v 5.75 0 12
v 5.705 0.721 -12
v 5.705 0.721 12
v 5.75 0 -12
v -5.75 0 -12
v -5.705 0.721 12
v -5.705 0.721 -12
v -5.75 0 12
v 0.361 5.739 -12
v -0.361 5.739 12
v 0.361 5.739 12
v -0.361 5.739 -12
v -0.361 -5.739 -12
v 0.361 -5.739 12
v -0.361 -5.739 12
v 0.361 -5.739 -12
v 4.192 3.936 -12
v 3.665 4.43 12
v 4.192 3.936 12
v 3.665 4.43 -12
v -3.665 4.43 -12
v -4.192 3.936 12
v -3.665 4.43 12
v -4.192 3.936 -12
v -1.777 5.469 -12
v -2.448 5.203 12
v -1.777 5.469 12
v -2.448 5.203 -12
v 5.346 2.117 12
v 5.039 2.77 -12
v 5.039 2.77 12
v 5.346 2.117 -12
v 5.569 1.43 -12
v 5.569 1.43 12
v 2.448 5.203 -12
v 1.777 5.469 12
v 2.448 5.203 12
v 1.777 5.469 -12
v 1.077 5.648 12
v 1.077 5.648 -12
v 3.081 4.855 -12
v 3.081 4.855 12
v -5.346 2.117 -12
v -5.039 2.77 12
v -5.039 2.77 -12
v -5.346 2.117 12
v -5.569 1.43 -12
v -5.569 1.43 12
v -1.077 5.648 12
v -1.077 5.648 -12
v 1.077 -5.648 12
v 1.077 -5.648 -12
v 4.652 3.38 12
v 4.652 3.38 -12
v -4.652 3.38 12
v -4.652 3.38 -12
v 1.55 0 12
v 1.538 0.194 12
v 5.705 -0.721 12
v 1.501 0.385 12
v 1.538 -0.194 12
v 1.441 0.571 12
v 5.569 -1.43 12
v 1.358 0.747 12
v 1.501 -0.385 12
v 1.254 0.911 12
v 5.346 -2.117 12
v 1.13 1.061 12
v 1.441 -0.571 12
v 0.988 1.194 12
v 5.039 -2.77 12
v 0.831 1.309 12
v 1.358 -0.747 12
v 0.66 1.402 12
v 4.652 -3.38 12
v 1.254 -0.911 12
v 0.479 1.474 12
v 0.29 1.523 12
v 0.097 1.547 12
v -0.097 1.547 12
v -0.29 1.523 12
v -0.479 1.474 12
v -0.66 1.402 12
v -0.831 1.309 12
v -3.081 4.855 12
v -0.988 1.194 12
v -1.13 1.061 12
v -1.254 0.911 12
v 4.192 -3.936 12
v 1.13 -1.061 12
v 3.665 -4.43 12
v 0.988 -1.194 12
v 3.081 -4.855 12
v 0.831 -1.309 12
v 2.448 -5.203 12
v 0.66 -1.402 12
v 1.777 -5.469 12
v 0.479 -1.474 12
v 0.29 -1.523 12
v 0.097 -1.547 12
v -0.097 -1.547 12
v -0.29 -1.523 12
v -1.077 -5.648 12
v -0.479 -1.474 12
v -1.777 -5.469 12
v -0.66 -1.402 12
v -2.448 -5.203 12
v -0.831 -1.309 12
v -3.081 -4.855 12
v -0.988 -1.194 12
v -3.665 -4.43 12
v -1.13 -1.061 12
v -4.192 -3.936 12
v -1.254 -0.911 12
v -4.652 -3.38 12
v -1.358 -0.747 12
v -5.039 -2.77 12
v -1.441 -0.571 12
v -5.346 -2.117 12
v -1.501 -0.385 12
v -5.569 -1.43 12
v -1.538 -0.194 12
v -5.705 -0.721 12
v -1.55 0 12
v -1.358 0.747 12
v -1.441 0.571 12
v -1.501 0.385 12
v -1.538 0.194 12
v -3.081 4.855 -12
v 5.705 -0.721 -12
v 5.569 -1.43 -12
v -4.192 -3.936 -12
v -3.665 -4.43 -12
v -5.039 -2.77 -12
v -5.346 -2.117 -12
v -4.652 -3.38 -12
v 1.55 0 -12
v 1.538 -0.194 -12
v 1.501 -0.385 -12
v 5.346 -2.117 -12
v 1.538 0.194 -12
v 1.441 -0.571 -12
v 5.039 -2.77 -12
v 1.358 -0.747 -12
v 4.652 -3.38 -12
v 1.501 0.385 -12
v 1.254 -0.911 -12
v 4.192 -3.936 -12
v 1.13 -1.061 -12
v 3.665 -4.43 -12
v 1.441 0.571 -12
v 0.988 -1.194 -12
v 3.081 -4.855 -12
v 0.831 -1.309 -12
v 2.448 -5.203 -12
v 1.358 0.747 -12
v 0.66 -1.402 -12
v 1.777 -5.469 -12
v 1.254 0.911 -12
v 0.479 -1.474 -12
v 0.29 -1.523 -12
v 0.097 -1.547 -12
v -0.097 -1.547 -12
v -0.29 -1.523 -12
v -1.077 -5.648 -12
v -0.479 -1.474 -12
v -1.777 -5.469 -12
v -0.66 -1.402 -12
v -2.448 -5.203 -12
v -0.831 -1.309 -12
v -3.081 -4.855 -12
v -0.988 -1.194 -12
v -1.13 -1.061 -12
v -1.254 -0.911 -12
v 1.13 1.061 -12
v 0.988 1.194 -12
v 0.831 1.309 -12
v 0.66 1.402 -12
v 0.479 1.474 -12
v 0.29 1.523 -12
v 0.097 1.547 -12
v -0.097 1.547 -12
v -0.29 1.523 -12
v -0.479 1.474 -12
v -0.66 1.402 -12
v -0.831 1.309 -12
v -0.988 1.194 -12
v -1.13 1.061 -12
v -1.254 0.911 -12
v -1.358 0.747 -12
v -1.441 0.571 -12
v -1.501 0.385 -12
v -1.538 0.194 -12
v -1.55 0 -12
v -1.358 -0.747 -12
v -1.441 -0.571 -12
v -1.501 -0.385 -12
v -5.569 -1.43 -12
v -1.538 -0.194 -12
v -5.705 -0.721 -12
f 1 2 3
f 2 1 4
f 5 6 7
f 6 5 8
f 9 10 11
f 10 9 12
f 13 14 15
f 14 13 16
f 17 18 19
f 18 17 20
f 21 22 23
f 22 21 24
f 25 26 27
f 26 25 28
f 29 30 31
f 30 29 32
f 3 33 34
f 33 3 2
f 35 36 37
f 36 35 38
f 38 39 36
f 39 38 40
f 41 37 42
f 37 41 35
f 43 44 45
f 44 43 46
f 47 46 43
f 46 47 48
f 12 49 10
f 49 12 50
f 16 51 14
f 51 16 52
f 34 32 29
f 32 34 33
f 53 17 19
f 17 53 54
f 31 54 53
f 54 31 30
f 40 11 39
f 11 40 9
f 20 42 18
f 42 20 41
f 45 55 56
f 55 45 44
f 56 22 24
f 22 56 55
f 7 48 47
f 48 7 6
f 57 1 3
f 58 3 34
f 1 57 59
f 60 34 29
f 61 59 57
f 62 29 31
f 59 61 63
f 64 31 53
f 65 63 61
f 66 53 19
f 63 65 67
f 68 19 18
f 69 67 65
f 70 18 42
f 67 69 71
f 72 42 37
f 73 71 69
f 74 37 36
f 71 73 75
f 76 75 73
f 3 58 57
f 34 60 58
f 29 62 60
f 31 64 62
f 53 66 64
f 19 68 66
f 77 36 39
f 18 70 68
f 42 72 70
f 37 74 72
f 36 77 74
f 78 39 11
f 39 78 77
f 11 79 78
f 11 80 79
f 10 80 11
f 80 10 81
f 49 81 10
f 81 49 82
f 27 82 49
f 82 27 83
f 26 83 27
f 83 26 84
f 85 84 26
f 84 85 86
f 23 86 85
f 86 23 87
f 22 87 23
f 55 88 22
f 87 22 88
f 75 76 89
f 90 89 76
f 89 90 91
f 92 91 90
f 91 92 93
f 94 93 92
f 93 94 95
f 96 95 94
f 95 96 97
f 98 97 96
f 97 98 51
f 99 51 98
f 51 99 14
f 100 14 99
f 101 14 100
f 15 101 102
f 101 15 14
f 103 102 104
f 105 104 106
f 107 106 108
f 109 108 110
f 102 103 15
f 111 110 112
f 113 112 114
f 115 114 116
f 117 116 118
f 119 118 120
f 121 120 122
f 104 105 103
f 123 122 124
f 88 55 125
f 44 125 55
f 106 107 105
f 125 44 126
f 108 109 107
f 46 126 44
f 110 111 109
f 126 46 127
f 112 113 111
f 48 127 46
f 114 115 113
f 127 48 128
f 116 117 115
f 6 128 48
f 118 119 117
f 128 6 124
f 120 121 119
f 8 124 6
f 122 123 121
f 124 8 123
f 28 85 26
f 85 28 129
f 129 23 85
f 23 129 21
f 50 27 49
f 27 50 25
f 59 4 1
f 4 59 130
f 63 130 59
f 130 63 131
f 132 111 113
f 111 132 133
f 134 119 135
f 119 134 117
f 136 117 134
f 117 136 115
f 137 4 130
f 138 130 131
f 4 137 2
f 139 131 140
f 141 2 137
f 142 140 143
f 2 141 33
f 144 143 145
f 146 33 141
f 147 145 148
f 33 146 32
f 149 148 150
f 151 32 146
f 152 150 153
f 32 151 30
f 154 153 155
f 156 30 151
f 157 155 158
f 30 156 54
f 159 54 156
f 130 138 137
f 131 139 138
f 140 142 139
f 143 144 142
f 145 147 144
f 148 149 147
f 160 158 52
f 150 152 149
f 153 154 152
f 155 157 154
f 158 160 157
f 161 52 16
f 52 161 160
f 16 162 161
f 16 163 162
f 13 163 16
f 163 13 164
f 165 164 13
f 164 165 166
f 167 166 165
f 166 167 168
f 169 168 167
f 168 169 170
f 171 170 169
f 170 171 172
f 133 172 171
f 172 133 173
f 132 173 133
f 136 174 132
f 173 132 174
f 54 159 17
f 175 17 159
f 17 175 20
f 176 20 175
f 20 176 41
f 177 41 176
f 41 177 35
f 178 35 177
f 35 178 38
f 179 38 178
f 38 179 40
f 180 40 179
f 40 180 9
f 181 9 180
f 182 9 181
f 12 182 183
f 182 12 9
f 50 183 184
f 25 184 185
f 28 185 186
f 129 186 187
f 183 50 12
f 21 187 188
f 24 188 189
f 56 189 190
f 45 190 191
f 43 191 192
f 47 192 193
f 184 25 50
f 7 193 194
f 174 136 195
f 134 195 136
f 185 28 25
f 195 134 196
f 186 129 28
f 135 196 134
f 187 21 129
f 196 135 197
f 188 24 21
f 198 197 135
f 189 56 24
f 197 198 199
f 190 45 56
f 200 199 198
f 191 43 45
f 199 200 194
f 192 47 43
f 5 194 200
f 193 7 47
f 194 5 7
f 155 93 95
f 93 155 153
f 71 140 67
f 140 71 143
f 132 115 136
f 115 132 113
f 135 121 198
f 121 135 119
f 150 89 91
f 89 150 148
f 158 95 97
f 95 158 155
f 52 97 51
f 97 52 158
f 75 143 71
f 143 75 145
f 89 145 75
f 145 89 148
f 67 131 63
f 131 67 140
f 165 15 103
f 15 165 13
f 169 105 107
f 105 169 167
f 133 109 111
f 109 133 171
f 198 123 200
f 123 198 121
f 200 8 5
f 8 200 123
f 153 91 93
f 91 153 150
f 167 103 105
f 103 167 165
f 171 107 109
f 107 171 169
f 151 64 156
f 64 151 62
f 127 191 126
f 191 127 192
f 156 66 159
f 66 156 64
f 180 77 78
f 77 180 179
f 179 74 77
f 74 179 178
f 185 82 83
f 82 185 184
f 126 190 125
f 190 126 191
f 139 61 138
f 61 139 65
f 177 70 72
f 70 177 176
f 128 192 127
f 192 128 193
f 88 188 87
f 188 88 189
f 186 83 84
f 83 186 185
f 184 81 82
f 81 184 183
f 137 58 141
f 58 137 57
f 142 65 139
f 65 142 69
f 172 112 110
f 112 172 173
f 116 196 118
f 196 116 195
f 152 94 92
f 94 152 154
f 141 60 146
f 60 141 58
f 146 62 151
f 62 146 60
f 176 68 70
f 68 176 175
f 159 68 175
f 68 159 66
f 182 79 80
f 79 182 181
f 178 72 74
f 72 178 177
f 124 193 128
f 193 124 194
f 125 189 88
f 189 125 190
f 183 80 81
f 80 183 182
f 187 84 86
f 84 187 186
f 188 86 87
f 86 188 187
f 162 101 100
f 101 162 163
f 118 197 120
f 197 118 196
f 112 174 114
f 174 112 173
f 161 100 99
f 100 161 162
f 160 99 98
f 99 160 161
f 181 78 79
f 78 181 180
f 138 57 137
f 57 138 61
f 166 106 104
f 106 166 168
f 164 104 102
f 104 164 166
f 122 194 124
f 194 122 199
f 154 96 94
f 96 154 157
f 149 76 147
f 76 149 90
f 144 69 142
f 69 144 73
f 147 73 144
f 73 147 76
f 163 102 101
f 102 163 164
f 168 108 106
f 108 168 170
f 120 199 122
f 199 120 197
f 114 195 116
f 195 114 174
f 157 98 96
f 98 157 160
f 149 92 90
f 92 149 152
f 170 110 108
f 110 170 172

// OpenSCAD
$fn = 50;


difference() {
	union() {
		translate(v = [0, 0, -12.0000000000]) {
			cylinder(h = 24, r = 5.7500000000);
		}
	}
	union() {
		translate(v = [0, 0, -100.0000000000]) {
			cylinder(h = 200, r = 1.5500000000);
		}
	}
}
